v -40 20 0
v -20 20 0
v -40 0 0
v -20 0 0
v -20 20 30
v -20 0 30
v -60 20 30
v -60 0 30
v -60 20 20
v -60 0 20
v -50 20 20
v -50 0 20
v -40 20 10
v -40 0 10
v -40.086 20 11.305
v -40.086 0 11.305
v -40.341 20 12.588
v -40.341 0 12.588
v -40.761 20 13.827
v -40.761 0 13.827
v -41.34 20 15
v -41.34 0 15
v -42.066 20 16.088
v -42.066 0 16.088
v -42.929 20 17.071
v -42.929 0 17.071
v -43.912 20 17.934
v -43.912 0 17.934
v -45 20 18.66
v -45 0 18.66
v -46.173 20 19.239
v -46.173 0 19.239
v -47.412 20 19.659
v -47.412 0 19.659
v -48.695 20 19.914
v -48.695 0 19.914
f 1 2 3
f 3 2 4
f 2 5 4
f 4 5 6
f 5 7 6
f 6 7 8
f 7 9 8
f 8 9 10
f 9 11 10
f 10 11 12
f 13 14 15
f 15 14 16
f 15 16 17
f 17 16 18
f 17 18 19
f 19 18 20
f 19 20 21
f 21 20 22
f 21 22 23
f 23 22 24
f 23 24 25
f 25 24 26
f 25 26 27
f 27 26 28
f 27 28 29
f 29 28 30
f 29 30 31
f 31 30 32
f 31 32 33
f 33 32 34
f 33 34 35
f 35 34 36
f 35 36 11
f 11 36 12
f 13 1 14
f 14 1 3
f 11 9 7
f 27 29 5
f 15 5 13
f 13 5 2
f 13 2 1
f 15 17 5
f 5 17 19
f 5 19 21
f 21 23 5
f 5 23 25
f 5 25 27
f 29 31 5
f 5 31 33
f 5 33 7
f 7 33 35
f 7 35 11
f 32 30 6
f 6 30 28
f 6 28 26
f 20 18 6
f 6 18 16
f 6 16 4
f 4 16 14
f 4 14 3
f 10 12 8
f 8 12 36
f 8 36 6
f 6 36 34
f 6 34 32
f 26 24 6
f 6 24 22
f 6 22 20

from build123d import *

# Parameters (mm, degrees)
BOSS_EXTRUDE1_DEPTH = 20


with BuildPart() as part:
    # Sketch2 → Boss-Extrude1 (new body)
    with BuildSketch(Plane(origin=(0, 0, 0), x_dir=(1, 0, 0), z_dir=(0, 1, 0))):
        with BuildLine():
            Line((0, 0), (0, -10))
            ThreePointArc((0, -10), (2.928932188, -17.071067812), (10, -20))
            Line((10, -20), (20, -20))
            Line((20, -20), (20, -30))
            Line((20, -30), (-20, -30))
            Line((-20, -30), (-20, 0))
            Line((-20, 0), (0, 0))
        make_face()
    extrude(amount=BOSS_EXTRUDE1_DEPTH)


with BuildPart() as body_2:
    # Mirror1: mirrored copy
    add(part.part.mirror(Plane(origin=(-20, 20, 30), x_dir=(0, 0, 1), z_dir=(1, 0, 0))))


solid = body_2.part
